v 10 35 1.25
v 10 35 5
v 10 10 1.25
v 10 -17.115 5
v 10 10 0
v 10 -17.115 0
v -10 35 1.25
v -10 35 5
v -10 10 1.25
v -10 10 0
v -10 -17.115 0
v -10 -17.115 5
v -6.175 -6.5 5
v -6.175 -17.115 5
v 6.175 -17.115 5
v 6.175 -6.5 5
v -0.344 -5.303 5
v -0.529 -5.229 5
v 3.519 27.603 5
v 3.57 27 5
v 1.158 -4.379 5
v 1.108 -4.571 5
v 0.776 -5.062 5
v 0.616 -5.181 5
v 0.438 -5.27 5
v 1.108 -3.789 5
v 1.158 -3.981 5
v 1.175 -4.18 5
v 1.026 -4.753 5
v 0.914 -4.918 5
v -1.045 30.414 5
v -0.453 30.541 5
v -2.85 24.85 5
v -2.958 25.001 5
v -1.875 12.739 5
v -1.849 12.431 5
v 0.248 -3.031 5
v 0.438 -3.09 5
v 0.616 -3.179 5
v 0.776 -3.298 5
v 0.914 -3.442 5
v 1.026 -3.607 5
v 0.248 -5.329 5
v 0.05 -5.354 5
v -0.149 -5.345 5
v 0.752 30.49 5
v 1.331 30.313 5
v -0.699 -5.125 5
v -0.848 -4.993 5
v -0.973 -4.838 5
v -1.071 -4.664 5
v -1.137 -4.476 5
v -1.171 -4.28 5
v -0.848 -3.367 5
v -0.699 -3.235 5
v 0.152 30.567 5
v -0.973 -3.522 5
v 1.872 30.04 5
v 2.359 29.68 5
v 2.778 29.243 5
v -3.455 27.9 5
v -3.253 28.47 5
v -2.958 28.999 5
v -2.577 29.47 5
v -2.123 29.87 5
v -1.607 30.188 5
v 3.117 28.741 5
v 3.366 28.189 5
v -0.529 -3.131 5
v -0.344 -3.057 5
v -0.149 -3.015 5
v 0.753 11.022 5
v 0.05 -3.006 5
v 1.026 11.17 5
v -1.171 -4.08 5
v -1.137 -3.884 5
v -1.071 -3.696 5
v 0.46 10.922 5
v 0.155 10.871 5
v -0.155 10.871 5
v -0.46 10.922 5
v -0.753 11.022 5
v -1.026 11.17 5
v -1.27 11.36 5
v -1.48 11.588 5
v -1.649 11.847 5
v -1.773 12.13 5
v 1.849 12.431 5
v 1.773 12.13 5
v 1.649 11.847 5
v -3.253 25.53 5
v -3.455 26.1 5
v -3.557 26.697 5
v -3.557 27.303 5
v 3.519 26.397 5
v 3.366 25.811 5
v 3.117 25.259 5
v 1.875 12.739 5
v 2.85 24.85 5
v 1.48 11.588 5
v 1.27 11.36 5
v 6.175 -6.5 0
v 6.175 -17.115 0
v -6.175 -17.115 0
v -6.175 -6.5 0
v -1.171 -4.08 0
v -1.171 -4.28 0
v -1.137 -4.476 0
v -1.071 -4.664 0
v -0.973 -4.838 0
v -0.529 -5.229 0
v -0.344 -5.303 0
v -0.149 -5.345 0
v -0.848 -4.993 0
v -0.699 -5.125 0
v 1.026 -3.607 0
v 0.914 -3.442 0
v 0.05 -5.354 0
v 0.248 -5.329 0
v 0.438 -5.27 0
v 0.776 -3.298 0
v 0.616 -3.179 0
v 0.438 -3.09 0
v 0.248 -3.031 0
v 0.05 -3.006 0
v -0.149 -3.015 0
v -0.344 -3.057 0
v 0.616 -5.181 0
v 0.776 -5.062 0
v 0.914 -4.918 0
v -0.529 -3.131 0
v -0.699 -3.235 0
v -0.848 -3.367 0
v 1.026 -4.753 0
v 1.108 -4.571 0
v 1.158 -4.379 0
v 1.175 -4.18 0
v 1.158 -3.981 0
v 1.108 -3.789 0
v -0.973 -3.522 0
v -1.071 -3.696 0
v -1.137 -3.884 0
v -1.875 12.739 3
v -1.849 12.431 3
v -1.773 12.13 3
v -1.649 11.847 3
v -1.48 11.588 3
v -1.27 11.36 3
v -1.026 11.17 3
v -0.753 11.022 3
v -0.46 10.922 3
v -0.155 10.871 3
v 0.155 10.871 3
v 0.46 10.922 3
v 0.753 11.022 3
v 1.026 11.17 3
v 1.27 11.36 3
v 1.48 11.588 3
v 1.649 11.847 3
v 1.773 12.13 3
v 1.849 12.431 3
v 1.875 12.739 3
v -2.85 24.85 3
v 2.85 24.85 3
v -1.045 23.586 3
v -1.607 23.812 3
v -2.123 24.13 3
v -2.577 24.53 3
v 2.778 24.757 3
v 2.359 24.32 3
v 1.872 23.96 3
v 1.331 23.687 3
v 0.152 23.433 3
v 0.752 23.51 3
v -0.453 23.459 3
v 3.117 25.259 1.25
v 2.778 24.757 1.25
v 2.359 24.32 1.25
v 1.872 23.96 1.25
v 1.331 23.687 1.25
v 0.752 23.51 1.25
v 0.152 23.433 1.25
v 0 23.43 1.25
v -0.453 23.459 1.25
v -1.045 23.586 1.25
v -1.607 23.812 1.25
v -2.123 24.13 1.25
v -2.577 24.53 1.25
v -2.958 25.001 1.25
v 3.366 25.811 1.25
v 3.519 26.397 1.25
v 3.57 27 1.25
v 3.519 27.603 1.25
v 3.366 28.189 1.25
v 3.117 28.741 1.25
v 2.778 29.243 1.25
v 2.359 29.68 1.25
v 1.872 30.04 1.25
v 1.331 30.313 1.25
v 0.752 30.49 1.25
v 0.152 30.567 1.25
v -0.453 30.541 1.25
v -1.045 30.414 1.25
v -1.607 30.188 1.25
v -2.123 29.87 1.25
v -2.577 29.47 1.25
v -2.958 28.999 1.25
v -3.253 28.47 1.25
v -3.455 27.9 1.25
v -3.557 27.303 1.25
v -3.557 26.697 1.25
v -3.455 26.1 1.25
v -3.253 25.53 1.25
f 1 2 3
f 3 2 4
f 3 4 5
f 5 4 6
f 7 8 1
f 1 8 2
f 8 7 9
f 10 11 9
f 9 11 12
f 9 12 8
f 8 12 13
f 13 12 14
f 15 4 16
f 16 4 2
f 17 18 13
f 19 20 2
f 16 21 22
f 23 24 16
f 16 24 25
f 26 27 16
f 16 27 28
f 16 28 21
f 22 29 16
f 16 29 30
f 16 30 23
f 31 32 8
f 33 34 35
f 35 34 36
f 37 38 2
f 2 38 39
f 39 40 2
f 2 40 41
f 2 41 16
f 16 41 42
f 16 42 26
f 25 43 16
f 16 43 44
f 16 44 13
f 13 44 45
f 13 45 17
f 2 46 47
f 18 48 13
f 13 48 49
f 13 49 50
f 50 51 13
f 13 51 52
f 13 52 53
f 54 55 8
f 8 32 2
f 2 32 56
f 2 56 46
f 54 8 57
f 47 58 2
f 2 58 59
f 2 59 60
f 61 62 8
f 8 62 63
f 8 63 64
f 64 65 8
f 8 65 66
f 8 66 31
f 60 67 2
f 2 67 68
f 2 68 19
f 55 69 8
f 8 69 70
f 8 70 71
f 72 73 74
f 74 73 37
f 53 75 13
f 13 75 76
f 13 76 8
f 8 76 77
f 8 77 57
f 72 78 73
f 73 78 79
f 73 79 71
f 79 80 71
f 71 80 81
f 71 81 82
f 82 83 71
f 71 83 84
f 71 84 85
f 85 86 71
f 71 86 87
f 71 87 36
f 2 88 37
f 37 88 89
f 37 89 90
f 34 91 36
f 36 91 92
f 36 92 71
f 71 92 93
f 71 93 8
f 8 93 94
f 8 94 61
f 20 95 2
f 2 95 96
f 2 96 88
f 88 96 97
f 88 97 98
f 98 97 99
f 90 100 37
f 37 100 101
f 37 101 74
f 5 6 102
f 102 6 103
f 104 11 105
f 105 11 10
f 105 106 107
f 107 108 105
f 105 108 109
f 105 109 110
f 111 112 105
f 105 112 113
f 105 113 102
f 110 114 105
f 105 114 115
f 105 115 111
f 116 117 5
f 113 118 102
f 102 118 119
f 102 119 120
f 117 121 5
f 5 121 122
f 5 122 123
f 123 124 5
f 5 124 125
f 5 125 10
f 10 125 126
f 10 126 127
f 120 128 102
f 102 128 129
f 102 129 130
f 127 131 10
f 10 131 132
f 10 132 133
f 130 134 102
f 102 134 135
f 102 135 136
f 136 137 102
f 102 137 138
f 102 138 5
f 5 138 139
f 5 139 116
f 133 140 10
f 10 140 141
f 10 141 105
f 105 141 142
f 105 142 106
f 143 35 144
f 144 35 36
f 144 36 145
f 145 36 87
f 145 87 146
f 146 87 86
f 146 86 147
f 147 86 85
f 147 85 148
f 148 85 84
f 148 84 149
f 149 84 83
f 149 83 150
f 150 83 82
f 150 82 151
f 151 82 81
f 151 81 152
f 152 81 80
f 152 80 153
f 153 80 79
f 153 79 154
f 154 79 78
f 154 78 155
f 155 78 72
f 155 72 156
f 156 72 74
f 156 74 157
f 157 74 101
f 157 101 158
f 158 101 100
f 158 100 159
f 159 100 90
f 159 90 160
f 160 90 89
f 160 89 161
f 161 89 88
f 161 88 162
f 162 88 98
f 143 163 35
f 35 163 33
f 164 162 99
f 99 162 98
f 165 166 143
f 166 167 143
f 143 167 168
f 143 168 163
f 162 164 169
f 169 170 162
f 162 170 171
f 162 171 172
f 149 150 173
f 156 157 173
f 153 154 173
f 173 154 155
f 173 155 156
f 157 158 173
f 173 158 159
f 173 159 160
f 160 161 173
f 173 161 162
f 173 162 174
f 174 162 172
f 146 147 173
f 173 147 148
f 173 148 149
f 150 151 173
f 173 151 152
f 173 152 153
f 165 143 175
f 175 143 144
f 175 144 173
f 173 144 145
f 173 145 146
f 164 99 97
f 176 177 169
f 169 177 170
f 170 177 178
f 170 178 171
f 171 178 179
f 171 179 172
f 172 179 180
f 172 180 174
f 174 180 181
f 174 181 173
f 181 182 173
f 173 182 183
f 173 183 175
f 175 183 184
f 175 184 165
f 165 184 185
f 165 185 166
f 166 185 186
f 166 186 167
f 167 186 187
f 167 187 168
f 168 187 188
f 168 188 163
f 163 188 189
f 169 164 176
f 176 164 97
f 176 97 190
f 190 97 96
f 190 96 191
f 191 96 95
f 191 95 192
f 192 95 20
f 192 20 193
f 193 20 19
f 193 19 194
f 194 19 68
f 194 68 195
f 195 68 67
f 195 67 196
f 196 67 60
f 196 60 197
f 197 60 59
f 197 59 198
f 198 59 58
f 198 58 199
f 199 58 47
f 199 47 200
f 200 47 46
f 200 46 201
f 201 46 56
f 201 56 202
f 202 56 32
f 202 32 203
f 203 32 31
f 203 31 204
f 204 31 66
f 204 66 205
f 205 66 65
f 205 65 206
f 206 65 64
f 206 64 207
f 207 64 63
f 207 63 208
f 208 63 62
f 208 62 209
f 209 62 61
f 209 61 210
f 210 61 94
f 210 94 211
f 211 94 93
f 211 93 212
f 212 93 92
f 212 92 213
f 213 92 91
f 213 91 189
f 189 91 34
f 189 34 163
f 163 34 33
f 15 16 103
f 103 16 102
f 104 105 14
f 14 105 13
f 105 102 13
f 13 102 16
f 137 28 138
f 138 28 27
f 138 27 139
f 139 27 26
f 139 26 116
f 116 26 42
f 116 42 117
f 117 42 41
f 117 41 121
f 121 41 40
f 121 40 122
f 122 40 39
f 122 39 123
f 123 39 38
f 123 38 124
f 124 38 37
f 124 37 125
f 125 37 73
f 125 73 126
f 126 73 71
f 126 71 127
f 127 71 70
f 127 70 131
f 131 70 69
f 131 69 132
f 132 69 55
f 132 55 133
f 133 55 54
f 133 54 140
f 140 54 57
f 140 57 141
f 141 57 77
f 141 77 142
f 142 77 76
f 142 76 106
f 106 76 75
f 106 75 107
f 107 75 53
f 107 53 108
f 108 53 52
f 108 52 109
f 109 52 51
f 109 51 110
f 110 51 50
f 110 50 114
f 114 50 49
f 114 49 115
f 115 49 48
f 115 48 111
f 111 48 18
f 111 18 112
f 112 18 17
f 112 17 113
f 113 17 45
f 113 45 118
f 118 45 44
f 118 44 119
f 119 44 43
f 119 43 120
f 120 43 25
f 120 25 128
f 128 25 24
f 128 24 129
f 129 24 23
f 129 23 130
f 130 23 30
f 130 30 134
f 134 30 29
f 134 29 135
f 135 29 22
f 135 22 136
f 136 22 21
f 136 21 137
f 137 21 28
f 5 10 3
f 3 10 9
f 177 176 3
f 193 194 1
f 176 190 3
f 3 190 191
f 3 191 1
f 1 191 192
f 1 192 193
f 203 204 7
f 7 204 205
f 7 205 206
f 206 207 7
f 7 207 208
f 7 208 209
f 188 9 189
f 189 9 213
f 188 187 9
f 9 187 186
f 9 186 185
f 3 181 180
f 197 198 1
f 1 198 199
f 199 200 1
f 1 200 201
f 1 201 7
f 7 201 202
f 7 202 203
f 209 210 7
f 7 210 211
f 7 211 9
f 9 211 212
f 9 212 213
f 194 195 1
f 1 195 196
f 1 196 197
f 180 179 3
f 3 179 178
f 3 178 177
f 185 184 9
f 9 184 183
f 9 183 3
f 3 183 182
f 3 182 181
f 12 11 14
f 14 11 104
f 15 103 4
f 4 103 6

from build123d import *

# Parameters (mm, degrees)
SKETCH3_W           = 20
SKETCH3_H           = 70
BOSS_EXTRUDE3_DEPTH = 5
CUT_EXTRUDE2_DEPTH  = 2
SKETCH6_R           = 3.57
CUT_EXTRUDE3_DEPTH  = 3
SKETCH7_R           = 1.175
SKETCH7_W           = 12.35
SKETCH7_H           = 23
CUT_EXTRUDE4_DEPTH  = 5
SKETCH8_W           = 1.25
SKETCH8_H           = 25
CUT_EXTRUDE5_DEPTH  = 30
SKETCH10_W          = 20
SKETCH10_H          = 17.885322835
CUT_EXTRUDE6_DEPTH  = 10


with BuildPart() as part:
    # Sketch3 → Boss-Extrude3 (new body)
    with BuildSketch(Plane.XY):
        Rectangle(SKETCH3_W, SKETCH3_H)
    extrude(amount=BOSS_EXTRUDE3_DEPTH)

    # Sketch4 → Cut-Extrude2 (cut)
    with BuildSketch(Plane.XY.offset(5)):
        with BuildLine():
            Line((-2.85, 24.850023256), (-1.875, 12.739206809))
            Line((-1.875, 12.739206809), (1.875, 12.739206809))
            Line((1.875, 12.739206809), (2.85, 24.850023256))
            ThreePointArc((2.85, 24.850023256), (0, 23.43), (-2.85, 24.850023256))
        make_face()
        with BuildLine():
            Line((1.875, 12.739206809), (-1.875, 12.739206809))
            ThreePointArc((-1.875, 12.739206809), (0, 10.864206809), (1.875, 12.739206809))
        make_face()
        with BuildLine():
            ThreePointArc((3.57, 27), (-1.133666618, 30.385217866), (-2.85, 24.850023256))
            Line((-2.85, 24.850023256), (2.85, 24.850023256))
            ThreePointArc((2.85, 24.850023256), (3.385217866, 25.866333382), (3.57, 27))
        make_face()
        with BuildLine():
            Line((2.85, 24.850023256), (-2.85, 24.850023256))
            ThreePointArc((-2.85, 24.850023256), (0, 23.43), (2.85, 24.850023256))
        make_face()
    extrude(amount=-CUT_EXTRUDE2_DEPTH, mode=Mode.SUBTRACT)

    # Sketch6 → Cut-Extrude3 (cut)
    with BuildSketch(Plane.XY.offset(3)):
        with Locations((0, 27)):
            Circle(SKETCH6_R)
    extrude(amount=-CUT_EXTRUDE3_DEPTH, mode=Mode.SUBTRACT)

    # Sketch7 → Cut-Extrude4 (cut)
    with BuildSketch(Plane.XY.offset(5)):
        with Locations((0, -4.18)):
            Circle(SKETCH7_R)
        with Locations((0, -31.82)):
            Circle(SKETCH7_R)
        with Locations((0, -18)):
            Rectangle(SKETCH7_W, SKETCH7_H)
    extrude(amount=-CUT_EXTRUDE4_DEPTH, mode=Mode.SUBTRACT)

    # Sketch8 → Cut-Extrude5 (cut)
    with BuildSketch(Plane(origin=(10, 0, 0), x_dir=(0, 0, -1), z_dir=(1, 0, 0))):
        with Locations((-0.625, 22.5)):
            Rectangle(SKETCH8_W, SKETCH8_H)
    extrude(amount=-CUT_EXTRUDE5_DEPTH, mode=Mode.SUBTRACT)

    # Sketch10 → Cut-Extrude6 (cut)
    with BuildSketch(Plane.XY.offset(5)):
        with Locations((0, -26.057338583)):
            Rectangle(SKETCH10_W, SKETCH10_H)
    extrude(amount=-CUT_EXTRUDE6_DEPTH, mode=Mode.SUBTRACT)


solid = part.part
